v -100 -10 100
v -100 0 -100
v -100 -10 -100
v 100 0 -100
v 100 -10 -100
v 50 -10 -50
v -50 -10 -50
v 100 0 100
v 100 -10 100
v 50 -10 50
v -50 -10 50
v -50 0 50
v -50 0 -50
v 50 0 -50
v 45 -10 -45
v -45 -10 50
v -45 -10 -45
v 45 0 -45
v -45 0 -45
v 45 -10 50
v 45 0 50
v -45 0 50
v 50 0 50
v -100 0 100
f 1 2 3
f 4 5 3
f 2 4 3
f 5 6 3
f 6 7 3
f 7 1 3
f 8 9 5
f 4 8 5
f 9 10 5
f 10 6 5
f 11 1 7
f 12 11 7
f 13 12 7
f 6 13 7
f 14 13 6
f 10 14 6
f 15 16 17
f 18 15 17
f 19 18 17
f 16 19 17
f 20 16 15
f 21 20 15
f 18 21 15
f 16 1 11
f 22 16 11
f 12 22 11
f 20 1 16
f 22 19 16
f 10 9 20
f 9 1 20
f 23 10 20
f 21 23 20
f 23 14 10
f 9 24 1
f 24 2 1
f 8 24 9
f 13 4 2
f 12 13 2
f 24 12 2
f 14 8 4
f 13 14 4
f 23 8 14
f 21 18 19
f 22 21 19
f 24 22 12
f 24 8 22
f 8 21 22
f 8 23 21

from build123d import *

# Parameters (mm, degrees)
SKETCH_1_W          = 200
SKETCH_1_H          = 200
EXTRUDE_1_DEPTH     = 10
CUT_EXTRUDE_1_DEPTH = 10


with BuildPart() as part:
    # 草圖1 → 填料-伸長1 (new body)
    with BuildSketch(Plane(origin=(0, 0, 0), x_dir=(1, 0, 0), z_dir=(0, 1, 0))):
        Rectangle(SKETCH_1_W, SKETCH_1_H)
    extrude(amount=-EXTRUDE_1_DEPTH)

    # 草圖1<3> → 除料-伸長-薄件1 (cut)
    with BuildSketch(Plane(origin=(0, 0, 0), x_dir=(1, 0, 0), z_dir=(0, 1, 0))):
        Polygon((-50, -50), (-50, 50), (50, 50), (50, -50), (45, -50), (45, 45), (-45, 45), (-45, -50), align=None)
    extrude(amount=-CUT_EXTRUDE_1_DEPTH, mode=Mode.SUBTRACT)


solid = part.part
